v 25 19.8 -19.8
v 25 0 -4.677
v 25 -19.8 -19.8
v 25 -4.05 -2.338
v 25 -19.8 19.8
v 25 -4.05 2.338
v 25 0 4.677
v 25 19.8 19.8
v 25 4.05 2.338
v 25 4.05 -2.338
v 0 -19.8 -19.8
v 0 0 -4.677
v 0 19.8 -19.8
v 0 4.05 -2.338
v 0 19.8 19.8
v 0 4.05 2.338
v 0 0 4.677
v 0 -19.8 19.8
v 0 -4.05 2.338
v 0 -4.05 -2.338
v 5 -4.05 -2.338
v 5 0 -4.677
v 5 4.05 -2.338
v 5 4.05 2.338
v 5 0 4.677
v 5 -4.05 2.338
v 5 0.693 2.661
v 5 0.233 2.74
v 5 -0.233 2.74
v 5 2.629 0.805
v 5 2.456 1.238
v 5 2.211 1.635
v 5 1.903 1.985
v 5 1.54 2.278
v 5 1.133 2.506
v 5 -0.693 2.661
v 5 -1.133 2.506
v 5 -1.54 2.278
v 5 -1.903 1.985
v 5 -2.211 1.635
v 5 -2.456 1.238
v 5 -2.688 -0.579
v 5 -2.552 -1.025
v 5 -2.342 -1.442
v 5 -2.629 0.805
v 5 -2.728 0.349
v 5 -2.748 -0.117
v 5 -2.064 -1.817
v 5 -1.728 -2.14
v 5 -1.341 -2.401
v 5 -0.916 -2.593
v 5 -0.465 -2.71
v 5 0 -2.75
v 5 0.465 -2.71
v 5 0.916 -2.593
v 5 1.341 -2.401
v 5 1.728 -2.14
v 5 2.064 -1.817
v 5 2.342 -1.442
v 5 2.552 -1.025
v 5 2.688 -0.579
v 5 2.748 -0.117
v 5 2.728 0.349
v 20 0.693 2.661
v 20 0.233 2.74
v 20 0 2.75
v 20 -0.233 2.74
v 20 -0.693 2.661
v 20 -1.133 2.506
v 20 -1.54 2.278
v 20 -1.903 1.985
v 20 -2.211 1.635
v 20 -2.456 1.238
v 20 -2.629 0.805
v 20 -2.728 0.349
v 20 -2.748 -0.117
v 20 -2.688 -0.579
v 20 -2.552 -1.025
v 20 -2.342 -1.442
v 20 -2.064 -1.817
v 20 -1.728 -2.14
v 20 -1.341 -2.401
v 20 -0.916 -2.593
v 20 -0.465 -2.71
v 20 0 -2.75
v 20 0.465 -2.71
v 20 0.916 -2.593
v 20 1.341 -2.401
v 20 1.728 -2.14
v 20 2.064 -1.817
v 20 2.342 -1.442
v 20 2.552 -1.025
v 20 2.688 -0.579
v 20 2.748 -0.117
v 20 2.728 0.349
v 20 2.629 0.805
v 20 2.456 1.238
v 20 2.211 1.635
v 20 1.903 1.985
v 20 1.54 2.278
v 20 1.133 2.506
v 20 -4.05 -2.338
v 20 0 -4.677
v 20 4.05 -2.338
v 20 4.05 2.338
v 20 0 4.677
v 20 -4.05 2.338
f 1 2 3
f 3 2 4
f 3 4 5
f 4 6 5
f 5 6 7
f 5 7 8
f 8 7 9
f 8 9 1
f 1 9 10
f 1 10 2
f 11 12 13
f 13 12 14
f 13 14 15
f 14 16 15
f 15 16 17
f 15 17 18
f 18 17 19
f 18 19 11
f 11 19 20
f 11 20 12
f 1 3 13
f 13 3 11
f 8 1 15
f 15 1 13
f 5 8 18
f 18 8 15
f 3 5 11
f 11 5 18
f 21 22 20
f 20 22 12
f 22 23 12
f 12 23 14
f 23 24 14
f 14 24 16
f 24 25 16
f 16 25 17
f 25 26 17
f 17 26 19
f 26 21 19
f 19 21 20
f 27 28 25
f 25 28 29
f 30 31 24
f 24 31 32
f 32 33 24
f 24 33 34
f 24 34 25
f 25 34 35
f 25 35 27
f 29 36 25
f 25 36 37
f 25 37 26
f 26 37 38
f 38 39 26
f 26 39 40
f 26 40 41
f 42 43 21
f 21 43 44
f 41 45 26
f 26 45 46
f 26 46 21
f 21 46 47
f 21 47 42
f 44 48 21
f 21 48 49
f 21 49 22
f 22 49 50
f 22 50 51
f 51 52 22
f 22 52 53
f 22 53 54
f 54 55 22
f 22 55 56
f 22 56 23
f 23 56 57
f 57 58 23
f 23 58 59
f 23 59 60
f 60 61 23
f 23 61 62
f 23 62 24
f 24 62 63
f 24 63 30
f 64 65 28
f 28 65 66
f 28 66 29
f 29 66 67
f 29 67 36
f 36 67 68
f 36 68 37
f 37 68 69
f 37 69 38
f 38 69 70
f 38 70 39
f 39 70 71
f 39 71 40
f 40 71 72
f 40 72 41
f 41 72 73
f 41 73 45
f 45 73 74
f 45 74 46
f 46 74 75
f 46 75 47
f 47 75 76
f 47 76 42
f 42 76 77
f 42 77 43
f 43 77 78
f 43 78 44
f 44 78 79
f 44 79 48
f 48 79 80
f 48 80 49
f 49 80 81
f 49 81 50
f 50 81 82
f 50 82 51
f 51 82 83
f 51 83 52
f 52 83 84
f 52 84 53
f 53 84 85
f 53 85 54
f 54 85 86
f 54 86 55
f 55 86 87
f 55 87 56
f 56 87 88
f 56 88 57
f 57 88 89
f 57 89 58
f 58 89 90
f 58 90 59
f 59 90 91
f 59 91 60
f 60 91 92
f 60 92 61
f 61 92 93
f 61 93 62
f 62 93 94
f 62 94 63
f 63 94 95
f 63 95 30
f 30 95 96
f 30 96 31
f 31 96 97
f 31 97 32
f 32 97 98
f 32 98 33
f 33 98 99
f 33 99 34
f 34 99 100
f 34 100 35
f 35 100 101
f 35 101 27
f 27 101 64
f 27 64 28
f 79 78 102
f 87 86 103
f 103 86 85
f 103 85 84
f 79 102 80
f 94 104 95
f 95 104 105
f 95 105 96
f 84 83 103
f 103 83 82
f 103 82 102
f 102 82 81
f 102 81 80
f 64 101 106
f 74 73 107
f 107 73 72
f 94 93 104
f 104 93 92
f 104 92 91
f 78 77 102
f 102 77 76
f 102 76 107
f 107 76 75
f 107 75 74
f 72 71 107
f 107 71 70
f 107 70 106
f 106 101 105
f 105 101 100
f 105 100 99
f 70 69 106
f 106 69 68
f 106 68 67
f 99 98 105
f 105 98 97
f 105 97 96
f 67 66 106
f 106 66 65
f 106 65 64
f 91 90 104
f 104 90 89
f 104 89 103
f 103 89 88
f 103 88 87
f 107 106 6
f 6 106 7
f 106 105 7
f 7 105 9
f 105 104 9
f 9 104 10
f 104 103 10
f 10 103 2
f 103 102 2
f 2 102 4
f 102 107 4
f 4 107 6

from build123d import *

# Parameters (mm, degrees)
SKETCH1_W               = 39.6
SKETCH1_H               = 39.6
BOSS_EXTRUDE1_DEPTH     = 25
CUT_EXTRUDE1_DEPTH      = 5
CUT_EXTRUDE2_DEPTH      = 38.537714368
CUT_EXTRUDE2_DEPTH_BACK = 38.537714368
SKETCH3_R               = 2.75
CUT_EXTRUDE4_START      = 25
CUT_EXTRUDE4_DEPTH      = 5


with BuildPart() as part:
    # Sketch1 → Boss-Extrude1 (new body)
    with BuildSketch(Plane(origin=(0, 0, 0), x_dir=(0, 0, -1), z_dir=(1, 0, 0))):
        Rectangle(SKETCH1_W, SKETCH1_H)
    extrude(amount=BOSS_EXTRUDE1_DEPTH)

    # Sketch2 → Cut-Extrude1 (cut)
    with BuildSketch(Plane(origin=(0, 0, 0), x_dir=(0, 0, -1), z_dir=(1, 0, 0))):
        Polygon((4.67653718, 0), (2.33826859, 4.05), (-2.33826859, 4.05), (-4.67653718, 0), (-2.33826859, -4.05), (2.33826859, -4.05), align=None)
    extrude(amount=CUT_EXTRUDE1_DEPTH, mode=Mode.SUBTRACT)

    # Sketch3 → Cut-Extrude2 (cut, two sides: drawn at the far end of the back side and taken through both)
    with BuildSketch(Plane(origin=(0, 0, 0), x_dir=(0, 0, -1), z_dir=(1, 0, 0)).offset(-CUT_EXTRUDE2_DEPTH_BACK)):
        Circle(SKETCH3_R)
    extrude(amount=CUT_EXTRUDE2_DEPTH + CUT_EXTRUDE2_DEPTH_BACK, mode=Mode.SUBTRACT)

    # Sketch2<2> → Cut-Extrude4 (cut)
    with BuildSketch(Plane(origin=(0, 0, 0), x_dir=(0, 0, -1), z_dir=(1, 0, 0)).offset(CUT_EXTRUDE4_START)):
        Polygon((4.67653718, 0), (2.33826859, 4.05), (-2.33826859, 4.05), (-4.67653718, 0), (-2.33826859, -4.05), (2.33826859, -4.05), align=None)
    extrude(amount=-CUT_EXTRUDE4_DEPTH, mode=Mode.SUBTRACT)


solid = part.part
